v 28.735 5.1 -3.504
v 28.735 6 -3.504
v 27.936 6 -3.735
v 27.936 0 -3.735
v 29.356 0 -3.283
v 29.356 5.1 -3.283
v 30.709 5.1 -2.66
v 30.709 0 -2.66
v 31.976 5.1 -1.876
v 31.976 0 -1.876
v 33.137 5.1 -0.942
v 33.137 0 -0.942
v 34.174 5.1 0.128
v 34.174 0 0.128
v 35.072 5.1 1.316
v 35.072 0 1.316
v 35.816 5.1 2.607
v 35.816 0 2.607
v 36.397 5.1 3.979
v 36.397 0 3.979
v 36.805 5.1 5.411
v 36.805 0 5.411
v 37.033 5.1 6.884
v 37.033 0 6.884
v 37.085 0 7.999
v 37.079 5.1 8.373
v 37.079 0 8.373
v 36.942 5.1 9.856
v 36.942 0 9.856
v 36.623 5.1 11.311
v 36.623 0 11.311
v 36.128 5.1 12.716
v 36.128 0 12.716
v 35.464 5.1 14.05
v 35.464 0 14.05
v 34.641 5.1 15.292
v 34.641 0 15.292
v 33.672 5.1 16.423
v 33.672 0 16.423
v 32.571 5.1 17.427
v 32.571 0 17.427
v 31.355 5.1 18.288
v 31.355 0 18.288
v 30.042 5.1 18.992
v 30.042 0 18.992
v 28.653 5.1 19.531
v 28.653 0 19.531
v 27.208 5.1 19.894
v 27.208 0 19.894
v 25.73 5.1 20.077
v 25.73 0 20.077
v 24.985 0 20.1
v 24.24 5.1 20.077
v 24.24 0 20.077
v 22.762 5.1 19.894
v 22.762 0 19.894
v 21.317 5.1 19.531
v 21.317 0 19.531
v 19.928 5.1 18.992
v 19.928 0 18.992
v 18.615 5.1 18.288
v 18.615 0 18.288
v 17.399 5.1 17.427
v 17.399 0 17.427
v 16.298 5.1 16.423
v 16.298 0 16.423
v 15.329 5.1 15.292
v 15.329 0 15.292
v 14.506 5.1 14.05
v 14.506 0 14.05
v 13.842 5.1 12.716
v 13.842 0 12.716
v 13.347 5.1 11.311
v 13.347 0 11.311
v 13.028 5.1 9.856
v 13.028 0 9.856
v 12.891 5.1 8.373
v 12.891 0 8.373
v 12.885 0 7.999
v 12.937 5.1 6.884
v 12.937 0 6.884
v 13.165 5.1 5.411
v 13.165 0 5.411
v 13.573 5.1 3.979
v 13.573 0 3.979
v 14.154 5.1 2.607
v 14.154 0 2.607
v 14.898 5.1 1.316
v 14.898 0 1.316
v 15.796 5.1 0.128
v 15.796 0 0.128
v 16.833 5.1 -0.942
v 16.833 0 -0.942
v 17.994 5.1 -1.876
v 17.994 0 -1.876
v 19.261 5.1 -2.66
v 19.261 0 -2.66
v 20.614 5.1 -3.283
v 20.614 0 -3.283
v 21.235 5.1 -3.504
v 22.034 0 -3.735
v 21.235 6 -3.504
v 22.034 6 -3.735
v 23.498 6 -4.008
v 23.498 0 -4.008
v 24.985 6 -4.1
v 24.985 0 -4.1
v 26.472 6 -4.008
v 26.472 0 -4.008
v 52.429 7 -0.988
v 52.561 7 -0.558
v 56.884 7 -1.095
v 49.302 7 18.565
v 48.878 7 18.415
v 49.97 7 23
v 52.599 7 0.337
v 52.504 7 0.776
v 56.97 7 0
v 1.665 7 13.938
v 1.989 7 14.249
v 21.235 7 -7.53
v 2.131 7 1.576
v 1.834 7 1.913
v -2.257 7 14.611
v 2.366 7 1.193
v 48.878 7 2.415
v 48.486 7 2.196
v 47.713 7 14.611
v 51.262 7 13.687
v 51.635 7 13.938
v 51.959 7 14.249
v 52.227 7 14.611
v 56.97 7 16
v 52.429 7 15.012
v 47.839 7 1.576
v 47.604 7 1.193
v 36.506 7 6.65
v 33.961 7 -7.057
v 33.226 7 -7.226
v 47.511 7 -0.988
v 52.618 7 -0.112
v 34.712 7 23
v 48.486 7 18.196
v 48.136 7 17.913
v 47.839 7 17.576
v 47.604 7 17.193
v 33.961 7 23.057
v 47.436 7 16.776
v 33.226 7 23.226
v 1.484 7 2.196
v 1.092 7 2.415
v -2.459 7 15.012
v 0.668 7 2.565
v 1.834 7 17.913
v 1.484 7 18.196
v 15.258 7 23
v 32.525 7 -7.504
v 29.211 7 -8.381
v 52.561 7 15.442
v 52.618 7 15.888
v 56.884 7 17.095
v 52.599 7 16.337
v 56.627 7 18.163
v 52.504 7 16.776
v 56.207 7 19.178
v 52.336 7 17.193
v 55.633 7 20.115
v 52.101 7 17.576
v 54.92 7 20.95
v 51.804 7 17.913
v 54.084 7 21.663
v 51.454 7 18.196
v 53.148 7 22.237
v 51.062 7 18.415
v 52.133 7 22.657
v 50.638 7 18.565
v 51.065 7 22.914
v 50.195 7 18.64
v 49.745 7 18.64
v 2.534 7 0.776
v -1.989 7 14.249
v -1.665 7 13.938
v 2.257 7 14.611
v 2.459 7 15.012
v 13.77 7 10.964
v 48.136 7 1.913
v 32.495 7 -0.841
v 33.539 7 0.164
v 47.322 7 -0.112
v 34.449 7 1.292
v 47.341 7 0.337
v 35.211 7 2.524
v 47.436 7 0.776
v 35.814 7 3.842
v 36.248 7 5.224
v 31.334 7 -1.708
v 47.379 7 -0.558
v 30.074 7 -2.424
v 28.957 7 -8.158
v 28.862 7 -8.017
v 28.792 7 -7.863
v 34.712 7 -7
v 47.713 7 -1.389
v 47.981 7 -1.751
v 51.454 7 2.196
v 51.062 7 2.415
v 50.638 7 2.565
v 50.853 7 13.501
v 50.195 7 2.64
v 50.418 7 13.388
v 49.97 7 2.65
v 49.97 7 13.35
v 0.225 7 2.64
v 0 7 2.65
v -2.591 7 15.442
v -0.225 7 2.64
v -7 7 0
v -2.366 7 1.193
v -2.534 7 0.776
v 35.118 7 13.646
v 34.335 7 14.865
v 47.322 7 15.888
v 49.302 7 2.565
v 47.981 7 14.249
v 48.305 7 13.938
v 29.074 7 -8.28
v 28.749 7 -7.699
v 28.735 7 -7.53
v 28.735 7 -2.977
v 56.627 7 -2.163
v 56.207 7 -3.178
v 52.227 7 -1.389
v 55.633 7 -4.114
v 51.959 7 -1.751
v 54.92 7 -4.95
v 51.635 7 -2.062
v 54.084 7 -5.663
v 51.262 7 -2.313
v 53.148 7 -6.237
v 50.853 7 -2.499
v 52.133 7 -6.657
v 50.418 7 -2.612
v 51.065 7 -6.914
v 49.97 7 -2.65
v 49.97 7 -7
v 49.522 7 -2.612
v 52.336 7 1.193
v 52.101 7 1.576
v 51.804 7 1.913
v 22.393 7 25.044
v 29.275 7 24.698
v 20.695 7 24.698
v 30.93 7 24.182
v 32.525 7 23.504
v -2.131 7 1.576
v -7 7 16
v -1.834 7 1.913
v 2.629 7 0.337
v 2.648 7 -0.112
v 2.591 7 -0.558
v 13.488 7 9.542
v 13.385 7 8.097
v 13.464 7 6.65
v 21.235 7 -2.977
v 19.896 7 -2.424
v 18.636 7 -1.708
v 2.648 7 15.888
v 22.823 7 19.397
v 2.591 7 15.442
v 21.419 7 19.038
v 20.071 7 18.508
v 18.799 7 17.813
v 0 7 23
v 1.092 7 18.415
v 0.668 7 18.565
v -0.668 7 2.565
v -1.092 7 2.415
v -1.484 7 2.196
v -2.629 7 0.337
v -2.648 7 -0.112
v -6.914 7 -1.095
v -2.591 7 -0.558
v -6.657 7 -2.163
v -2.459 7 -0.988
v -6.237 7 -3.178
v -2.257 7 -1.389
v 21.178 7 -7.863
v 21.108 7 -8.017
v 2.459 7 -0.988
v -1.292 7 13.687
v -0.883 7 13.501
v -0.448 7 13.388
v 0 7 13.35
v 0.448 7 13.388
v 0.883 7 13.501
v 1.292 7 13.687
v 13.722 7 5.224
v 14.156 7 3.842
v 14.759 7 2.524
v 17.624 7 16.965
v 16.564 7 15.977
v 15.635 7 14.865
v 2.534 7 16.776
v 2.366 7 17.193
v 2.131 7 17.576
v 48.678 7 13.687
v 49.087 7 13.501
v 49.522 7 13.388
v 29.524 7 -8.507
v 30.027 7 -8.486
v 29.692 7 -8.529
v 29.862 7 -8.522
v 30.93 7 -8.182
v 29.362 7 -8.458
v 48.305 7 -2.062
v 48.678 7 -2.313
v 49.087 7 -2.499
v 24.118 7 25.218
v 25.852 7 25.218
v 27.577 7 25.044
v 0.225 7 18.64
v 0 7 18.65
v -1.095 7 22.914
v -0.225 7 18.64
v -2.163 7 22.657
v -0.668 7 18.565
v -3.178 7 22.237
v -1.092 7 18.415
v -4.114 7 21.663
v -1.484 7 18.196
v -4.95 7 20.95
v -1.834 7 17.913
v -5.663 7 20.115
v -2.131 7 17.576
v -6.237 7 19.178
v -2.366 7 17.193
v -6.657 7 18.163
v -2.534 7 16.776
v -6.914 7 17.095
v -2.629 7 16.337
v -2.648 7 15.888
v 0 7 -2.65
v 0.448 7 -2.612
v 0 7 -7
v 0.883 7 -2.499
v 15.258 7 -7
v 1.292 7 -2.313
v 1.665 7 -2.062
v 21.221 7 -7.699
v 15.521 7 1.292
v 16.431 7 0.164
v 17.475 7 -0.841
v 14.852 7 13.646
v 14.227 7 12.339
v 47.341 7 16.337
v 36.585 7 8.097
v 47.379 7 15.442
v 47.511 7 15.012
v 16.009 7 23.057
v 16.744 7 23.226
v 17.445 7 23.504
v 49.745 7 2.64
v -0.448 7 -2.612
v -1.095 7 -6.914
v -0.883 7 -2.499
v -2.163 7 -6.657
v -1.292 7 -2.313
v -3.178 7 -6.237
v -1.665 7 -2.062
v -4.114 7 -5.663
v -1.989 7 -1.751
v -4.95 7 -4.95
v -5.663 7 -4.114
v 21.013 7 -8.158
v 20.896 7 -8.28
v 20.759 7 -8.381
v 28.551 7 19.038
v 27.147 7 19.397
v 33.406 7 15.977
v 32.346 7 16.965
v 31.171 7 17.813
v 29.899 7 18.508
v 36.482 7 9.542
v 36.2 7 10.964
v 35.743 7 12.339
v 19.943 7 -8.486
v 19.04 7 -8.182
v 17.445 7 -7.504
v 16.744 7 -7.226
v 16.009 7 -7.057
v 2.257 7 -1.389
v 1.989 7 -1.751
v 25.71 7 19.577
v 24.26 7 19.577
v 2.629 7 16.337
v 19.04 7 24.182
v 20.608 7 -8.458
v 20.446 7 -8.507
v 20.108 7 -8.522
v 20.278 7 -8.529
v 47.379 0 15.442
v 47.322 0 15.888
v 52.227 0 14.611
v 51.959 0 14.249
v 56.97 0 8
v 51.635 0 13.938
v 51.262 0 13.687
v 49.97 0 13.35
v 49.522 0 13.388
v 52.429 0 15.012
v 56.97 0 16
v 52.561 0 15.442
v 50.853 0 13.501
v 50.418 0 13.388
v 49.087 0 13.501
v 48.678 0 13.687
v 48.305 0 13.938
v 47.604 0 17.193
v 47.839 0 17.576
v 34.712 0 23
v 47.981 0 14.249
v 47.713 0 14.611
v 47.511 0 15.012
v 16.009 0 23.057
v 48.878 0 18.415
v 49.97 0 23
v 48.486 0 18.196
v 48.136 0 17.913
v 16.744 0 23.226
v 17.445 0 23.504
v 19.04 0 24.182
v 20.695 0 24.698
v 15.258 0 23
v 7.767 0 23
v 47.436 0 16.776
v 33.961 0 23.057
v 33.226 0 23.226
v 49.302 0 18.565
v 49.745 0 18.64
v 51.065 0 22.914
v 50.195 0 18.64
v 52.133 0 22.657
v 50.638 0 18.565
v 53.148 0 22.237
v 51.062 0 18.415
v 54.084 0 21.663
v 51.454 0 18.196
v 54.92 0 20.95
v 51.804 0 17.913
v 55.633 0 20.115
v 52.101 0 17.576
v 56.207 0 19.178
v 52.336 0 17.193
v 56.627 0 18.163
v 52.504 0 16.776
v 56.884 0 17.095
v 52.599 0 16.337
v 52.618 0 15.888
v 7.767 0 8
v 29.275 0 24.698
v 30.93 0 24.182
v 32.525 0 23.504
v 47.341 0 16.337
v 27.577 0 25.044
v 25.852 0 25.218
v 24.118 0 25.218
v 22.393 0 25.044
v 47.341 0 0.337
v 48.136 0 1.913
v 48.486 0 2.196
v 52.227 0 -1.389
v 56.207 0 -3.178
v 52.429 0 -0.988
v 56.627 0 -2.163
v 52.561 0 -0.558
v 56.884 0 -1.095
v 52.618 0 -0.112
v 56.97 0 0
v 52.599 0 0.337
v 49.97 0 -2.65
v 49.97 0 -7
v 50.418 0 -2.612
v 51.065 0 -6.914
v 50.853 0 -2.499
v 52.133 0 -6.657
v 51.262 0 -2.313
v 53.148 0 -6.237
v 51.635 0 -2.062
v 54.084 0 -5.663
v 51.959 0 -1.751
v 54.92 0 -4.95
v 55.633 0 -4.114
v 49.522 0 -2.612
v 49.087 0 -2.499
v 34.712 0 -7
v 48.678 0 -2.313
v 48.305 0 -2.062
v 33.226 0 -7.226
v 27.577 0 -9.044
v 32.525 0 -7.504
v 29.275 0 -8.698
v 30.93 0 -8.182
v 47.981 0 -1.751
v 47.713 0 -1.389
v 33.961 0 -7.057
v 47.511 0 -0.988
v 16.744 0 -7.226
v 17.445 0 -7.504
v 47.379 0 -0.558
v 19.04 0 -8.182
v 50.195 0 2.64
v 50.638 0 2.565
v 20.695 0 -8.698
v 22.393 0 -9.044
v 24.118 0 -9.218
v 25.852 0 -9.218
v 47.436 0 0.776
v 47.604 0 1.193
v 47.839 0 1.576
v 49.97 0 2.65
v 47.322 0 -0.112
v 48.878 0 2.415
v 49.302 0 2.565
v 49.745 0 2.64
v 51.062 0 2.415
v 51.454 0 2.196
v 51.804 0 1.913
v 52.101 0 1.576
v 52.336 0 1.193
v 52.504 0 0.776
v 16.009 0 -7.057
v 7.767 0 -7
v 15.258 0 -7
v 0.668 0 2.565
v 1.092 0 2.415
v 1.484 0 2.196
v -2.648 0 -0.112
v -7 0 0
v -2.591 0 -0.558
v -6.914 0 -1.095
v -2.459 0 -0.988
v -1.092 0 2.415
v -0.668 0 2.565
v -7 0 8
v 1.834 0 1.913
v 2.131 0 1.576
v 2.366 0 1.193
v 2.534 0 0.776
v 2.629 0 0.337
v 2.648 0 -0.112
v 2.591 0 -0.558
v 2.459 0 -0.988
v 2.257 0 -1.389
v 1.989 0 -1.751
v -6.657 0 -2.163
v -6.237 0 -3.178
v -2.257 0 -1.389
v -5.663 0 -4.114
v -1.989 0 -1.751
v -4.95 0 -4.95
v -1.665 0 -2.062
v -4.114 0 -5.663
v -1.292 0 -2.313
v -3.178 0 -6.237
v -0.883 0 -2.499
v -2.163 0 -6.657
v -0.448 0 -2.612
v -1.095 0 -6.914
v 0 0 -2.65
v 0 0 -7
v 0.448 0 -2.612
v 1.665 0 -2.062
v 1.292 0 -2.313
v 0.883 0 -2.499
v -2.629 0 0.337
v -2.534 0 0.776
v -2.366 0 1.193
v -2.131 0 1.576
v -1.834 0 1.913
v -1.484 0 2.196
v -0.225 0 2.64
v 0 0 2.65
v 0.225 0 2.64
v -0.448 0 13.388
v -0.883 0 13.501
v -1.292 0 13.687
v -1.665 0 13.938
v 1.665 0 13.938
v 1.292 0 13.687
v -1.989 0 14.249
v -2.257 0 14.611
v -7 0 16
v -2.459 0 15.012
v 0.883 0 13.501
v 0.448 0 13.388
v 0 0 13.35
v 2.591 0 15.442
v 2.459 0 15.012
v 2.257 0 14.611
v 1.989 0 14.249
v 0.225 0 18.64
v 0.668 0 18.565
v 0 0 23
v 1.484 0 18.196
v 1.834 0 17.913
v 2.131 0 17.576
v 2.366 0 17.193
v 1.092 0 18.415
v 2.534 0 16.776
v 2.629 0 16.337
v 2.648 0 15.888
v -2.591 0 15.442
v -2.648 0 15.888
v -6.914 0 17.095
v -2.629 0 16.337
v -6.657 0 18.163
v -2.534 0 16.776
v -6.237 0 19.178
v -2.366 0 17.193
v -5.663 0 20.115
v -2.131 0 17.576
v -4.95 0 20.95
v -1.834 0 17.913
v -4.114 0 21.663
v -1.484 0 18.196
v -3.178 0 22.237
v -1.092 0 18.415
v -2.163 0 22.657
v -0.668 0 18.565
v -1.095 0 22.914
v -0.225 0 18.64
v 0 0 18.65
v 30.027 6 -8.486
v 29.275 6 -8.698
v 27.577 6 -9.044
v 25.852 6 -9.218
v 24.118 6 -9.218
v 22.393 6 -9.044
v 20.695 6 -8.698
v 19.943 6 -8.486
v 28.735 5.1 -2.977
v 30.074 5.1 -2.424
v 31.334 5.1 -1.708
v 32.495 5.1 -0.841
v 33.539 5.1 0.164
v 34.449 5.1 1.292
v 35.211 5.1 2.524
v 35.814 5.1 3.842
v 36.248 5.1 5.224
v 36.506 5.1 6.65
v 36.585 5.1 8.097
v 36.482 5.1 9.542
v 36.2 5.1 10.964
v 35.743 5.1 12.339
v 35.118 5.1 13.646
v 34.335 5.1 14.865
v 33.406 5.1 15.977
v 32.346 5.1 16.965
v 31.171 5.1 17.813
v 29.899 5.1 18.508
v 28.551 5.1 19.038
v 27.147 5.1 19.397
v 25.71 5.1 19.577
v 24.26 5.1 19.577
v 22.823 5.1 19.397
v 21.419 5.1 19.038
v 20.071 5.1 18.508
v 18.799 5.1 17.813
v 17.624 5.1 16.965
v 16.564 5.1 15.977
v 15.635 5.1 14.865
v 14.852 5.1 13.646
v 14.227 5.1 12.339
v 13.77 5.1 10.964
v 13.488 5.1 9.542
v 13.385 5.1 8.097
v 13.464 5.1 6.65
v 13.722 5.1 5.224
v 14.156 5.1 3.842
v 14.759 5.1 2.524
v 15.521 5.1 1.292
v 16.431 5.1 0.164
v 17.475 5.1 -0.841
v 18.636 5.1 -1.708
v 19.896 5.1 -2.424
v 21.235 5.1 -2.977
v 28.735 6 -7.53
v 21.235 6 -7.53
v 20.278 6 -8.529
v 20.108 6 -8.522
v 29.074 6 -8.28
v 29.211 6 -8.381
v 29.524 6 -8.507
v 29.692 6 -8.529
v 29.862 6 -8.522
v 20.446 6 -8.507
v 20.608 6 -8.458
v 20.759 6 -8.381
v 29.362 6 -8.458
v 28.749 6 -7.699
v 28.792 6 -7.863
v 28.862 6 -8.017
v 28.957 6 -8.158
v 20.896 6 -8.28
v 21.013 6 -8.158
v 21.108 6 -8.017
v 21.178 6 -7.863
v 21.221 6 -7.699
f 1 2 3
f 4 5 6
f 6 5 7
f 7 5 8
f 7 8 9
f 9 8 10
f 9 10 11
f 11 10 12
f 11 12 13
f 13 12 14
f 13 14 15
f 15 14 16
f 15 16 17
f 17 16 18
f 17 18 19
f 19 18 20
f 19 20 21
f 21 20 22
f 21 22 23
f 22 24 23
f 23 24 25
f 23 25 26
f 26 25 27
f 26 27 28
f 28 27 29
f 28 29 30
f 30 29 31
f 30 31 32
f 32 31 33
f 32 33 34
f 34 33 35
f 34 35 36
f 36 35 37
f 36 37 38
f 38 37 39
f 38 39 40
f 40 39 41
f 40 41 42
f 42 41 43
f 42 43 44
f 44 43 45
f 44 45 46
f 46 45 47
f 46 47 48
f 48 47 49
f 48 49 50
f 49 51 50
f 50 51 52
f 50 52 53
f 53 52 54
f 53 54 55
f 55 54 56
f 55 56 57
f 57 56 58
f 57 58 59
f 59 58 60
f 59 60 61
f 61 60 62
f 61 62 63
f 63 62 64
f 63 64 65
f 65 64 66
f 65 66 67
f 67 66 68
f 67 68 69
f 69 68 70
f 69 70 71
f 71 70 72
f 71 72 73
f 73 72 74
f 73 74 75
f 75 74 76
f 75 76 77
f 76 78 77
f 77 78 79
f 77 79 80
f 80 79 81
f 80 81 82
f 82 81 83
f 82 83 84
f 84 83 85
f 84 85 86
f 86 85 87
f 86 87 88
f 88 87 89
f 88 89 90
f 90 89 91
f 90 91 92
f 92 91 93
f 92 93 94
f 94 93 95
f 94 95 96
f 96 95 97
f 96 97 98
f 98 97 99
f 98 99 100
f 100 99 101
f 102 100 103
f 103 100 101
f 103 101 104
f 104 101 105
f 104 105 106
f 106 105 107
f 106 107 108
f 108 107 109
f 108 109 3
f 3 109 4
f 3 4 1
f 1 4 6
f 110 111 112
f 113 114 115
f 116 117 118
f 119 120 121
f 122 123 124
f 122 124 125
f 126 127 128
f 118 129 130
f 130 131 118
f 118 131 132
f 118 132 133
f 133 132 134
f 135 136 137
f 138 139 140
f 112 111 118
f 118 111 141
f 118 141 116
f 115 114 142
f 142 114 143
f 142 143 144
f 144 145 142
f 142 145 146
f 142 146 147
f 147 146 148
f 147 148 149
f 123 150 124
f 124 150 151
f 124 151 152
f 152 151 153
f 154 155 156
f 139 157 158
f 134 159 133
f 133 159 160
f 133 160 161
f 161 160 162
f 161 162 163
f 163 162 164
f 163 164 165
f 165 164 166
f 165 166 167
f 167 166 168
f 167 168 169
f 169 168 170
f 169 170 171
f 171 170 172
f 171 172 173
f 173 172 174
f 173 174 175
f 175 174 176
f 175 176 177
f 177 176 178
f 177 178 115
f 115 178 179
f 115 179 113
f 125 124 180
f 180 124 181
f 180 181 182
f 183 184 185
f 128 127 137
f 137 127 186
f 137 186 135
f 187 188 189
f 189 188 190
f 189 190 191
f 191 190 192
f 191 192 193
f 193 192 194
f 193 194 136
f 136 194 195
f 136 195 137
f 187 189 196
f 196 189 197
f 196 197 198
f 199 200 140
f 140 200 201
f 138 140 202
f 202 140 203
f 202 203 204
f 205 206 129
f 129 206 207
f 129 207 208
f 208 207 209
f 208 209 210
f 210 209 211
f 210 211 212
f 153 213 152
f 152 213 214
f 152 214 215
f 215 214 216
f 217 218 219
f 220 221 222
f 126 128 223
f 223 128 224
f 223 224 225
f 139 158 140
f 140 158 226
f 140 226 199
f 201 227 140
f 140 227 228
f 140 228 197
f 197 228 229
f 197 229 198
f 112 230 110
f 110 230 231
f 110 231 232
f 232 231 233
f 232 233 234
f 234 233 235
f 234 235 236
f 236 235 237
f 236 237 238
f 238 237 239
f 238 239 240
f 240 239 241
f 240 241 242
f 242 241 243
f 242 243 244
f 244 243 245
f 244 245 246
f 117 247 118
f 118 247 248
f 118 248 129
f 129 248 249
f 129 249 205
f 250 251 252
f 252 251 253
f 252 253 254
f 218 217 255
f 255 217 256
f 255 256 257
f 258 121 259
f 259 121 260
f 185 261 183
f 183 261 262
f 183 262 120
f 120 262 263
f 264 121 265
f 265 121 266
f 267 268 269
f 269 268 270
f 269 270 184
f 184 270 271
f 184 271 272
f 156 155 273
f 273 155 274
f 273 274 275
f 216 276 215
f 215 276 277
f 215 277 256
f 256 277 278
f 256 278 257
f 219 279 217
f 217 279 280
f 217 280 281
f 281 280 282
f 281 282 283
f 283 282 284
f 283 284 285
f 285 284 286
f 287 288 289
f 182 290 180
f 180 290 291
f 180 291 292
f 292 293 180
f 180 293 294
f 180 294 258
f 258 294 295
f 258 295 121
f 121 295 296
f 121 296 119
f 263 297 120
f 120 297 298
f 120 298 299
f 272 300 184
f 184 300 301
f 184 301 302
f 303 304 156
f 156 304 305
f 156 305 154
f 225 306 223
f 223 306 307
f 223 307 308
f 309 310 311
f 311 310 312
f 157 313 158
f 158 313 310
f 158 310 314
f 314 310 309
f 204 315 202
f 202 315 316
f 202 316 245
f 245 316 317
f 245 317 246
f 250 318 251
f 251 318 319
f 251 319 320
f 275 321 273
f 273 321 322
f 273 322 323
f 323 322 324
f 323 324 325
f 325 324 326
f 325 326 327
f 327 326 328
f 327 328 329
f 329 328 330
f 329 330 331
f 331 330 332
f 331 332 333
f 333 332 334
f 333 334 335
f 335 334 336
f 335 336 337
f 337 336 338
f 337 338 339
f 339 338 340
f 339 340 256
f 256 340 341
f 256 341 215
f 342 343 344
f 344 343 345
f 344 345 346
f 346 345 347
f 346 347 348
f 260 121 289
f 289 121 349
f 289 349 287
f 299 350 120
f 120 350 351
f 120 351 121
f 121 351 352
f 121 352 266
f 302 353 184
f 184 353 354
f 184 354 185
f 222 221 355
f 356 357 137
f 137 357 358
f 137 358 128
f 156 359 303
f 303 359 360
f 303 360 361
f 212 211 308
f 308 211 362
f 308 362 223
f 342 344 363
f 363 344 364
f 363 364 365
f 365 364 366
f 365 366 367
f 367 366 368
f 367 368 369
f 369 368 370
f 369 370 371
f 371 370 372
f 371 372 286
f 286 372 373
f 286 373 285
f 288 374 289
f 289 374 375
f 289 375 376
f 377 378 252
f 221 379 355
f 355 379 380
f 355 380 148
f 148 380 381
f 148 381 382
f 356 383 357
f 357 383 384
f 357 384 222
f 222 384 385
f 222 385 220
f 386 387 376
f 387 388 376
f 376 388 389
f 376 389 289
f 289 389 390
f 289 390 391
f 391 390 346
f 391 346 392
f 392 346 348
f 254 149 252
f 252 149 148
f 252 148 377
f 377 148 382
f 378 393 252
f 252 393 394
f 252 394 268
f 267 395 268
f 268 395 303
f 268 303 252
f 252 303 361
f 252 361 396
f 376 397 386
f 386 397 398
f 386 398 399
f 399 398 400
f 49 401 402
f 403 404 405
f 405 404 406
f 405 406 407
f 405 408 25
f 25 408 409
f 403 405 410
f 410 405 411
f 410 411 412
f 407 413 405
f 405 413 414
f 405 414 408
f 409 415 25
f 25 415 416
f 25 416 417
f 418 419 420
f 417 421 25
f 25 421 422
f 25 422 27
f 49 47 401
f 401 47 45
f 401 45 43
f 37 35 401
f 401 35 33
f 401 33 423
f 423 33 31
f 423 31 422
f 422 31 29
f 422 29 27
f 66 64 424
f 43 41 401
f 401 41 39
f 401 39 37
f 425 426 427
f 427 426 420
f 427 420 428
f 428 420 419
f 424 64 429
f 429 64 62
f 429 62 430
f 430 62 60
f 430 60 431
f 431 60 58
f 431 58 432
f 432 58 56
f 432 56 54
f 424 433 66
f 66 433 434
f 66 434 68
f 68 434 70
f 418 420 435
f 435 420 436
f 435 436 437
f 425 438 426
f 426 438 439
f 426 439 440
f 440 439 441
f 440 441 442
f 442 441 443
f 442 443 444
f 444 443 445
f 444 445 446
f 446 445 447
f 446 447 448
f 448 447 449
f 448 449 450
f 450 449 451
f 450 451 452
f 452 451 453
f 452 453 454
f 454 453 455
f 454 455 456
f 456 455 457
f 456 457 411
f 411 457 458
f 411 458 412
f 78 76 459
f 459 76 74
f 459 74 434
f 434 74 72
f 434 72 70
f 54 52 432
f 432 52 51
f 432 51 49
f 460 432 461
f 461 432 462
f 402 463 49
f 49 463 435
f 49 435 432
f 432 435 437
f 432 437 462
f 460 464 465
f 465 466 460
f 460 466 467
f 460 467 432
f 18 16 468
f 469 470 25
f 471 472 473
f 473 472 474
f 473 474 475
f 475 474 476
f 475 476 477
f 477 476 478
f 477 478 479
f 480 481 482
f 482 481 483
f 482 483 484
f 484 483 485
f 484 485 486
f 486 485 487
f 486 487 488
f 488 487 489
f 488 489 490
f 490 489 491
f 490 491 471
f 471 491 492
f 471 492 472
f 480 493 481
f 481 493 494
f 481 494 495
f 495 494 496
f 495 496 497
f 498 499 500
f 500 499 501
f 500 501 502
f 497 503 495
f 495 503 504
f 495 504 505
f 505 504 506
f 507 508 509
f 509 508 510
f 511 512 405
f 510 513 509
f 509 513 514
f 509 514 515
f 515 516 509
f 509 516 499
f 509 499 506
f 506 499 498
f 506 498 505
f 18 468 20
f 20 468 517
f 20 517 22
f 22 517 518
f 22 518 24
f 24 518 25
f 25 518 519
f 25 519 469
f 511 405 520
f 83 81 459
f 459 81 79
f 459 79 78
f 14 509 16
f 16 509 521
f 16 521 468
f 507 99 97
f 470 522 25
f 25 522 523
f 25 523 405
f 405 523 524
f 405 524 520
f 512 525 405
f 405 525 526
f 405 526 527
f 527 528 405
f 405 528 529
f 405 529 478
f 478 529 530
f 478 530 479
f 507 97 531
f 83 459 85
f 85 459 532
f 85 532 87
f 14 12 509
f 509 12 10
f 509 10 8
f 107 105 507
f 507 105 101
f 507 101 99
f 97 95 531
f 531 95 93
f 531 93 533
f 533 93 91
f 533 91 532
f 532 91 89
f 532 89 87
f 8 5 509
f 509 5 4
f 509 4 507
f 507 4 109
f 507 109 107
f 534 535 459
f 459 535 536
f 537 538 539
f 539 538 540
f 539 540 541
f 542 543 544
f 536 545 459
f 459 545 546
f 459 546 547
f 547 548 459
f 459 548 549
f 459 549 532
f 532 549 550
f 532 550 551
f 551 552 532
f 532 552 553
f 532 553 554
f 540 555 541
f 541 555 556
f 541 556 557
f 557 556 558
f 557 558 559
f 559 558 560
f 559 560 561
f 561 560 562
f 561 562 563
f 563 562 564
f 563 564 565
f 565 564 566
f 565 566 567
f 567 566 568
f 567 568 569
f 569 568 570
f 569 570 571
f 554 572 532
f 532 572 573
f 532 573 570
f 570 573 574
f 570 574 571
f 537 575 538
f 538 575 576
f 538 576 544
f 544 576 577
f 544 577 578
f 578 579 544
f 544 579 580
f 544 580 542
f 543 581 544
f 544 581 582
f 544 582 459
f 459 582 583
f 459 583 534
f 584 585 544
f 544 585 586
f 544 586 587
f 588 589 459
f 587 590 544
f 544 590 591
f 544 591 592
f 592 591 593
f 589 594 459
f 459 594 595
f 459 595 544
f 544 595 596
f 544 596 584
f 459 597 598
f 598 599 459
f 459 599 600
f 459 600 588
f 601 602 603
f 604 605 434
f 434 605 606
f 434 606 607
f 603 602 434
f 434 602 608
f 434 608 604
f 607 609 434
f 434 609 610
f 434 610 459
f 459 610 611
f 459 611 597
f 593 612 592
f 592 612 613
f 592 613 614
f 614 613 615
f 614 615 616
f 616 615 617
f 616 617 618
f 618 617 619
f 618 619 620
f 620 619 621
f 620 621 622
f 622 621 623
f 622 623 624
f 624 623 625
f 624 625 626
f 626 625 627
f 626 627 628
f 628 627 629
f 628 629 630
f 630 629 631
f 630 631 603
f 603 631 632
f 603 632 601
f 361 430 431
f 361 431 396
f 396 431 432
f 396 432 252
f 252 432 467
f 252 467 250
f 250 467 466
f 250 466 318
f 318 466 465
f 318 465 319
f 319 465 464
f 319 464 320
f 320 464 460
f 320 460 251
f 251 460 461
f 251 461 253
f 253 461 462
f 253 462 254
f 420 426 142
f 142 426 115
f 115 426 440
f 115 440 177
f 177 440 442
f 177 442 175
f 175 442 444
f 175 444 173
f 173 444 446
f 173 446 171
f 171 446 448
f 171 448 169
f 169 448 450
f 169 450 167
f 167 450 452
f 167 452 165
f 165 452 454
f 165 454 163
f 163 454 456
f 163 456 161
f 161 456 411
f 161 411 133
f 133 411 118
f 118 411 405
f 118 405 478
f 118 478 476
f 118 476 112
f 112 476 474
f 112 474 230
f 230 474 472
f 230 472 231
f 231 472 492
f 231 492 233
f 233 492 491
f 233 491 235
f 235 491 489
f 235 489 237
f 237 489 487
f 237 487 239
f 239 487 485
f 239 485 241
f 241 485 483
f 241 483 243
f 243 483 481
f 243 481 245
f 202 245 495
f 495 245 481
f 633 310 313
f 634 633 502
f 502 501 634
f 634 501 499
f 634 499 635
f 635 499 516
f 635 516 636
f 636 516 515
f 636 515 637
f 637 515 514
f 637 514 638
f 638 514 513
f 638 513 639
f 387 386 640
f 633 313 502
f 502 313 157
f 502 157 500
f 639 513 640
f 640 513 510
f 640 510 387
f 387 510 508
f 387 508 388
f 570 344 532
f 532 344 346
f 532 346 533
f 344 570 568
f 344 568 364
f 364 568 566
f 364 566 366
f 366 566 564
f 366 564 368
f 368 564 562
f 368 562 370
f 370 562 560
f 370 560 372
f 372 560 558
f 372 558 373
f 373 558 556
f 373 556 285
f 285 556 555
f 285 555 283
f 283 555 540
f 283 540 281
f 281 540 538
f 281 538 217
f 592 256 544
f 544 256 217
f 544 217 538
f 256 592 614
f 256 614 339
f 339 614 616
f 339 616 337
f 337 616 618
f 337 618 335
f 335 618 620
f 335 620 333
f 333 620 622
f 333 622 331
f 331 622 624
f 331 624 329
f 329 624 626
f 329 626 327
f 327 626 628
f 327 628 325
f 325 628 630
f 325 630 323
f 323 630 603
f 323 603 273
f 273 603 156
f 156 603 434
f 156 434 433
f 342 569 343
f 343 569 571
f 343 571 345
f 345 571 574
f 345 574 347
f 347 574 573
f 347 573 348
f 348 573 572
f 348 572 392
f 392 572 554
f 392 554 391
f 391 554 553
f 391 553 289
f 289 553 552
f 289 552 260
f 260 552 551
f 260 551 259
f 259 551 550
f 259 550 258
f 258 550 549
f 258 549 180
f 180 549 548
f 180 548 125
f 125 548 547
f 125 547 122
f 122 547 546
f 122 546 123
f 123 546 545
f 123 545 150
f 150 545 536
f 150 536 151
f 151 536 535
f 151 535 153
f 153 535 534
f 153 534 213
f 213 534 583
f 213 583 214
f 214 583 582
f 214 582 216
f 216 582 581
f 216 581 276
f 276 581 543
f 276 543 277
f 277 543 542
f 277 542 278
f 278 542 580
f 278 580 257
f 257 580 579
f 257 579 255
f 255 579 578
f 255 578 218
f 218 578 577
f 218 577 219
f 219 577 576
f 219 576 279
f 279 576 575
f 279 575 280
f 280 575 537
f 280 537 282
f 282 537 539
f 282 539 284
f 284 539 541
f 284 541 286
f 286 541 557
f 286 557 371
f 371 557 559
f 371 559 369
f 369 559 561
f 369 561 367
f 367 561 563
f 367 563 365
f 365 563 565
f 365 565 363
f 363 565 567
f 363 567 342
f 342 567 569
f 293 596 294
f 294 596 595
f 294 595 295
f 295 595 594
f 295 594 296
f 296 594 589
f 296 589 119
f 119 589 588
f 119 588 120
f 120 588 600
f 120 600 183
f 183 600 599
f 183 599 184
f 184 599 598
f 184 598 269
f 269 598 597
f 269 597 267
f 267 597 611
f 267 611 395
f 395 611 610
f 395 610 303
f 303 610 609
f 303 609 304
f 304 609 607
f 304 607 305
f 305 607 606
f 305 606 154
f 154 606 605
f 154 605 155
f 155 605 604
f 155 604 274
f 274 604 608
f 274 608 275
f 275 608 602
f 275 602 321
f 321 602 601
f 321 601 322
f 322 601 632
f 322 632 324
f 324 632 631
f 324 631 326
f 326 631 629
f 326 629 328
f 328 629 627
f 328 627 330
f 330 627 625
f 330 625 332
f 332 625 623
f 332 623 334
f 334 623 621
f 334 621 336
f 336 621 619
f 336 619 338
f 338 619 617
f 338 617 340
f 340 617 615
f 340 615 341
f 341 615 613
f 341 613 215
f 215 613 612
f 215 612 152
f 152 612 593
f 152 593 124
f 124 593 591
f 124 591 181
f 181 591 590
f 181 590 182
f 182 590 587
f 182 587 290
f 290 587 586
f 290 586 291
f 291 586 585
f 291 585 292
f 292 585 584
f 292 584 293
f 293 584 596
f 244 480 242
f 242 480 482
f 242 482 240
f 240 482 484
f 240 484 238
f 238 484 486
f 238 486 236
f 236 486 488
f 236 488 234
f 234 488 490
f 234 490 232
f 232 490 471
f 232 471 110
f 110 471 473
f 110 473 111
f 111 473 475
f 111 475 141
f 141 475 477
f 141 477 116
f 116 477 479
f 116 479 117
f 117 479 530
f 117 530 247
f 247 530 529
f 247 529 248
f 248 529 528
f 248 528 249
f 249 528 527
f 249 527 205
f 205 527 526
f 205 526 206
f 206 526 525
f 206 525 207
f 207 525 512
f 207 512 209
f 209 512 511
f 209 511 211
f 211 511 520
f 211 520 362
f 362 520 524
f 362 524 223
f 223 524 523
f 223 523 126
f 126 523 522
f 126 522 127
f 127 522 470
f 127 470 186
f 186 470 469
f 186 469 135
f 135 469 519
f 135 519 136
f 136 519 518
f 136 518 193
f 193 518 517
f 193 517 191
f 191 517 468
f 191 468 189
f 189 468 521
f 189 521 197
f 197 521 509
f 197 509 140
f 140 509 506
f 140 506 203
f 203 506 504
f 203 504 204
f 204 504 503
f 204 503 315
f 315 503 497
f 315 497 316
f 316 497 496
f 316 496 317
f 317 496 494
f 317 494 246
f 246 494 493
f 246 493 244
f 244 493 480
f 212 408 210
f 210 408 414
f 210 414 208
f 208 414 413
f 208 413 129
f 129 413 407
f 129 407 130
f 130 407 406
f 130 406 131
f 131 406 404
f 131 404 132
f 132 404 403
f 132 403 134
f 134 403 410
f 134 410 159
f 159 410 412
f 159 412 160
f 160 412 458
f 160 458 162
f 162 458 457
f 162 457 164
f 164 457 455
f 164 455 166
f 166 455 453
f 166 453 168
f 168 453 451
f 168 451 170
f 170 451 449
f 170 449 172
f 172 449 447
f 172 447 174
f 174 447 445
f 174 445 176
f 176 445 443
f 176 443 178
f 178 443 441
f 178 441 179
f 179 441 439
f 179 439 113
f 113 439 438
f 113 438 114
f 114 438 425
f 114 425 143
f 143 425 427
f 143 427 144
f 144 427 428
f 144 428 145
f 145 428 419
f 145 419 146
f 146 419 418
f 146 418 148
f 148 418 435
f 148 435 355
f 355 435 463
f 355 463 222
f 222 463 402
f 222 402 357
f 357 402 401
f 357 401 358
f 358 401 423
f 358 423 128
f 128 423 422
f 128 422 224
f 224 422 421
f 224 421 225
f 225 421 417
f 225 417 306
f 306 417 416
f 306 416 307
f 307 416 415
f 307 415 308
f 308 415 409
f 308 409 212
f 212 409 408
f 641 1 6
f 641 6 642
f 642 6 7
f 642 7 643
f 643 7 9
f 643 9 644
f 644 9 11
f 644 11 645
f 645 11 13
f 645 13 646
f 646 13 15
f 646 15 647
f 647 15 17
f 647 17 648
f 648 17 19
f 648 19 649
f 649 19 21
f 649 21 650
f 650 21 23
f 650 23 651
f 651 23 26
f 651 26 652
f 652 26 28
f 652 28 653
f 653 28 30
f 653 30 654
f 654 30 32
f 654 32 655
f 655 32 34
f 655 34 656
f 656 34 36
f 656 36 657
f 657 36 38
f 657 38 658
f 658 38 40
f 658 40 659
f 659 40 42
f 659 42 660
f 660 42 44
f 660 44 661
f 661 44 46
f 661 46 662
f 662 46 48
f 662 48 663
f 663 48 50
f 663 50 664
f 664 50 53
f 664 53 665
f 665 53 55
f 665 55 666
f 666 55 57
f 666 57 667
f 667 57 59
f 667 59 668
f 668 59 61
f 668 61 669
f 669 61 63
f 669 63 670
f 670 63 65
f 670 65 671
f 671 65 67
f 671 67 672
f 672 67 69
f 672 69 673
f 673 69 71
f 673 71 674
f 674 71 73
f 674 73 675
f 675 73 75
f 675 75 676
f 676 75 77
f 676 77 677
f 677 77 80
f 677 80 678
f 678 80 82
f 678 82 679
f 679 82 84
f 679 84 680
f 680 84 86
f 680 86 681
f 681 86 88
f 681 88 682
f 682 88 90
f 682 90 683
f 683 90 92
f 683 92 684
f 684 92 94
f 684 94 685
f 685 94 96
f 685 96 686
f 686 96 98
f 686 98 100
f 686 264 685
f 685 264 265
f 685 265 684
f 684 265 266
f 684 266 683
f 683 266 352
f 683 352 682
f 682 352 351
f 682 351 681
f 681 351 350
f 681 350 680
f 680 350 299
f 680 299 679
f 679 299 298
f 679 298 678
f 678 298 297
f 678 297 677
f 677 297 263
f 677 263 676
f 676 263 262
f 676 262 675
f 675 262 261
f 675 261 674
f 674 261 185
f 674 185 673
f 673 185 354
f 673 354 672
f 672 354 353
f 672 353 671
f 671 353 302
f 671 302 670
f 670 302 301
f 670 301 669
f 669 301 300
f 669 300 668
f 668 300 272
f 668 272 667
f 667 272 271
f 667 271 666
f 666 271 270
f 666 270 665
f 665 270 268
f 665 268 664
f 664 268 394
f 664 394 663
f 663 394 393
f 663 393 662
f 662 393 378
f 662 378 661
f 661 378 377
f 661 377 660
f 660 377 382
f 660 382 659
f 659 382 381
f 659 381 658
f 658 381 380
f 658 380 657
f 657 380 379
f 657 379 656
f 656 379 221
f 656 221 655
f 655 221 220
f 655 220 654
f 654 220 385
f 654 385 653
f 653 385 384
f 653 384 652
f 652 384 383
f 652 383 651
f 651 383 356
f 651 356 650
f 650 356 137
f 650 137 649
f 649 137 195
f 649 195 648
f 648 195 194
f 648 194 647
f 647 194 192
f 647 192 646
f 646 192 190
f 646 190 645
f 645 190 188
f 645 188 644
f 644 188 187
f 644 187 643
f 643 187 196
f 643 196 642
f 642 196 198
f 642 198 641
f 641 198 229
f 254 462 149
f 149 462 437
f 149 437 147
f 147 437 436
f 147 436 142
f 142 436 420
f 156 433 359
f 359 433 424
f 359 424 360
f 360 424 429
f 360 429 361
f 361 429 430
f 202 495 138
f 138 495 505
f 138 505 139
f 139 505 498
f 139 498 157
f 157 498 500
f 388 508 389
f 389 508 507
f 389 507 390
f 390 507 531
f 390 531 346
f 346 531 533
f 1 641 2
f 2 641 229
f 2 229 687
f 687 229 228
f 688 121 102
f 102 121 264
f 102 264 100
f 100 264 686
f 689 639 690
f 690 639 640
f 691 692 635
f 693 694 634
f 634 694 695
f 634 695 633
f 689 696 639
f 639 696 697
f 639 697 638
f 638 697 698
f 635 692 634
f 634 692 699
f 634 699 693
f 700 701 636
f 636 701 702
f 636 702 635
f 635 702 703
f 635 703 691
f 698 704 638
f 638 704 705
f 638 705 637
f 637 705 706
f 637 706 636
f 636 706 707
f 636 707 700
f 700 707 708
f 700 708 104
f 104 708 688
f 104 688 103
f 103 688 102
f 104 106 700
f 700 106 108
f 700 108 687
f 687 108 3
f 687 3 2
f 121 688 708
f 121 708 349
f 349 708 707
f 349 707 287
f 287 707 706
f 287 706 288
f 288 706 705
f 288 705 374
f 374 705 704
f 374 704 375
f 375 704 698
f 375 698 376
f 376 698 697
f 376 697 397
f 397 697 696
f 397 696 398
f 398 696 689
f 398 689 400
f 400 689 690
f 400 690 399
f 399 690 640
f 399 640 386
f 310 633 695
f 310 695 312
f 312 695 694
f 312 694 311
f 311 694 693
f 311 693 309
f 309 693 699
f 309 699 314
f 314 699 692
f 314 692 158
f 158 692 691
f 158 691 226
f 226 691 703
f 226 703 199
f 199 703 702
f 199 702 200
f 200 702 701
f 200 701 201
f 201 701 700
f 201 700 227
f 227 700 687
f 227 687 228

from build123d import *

# Parameters (mm, degrees)
SKETCH_2_R          = 2.65
SKETCH_2_R_2        = 12.1
EXTRUDE_1_DEPTH     = 7
SKETCH_3_R          = 12.1
SKETCH_3_R_2        = 11.6
EXTRUDE_2_DEPTH     = 1.9
FILLET_1_R          = 5
CUT_EXTRUDE_2_DEPTH = 1
CUT_EXTRUDE_3_DEPTH = 7
FILLET_3_R          = 1


with BuildPart() as part:
    # 草图2 → 凸台-拉伸1 (new body)
    with BuildSketch(Plane(origin=(0, 0, 0), x_dir=(1, 0, 0), z_dir=(0, 1, 0))):
        with BuildLine():
            Line((33.483093904, -23), (49.97, -23))
            ThreePointArc((49.97, -23), (54.919747468, -20.949747468), (56.97, -16))
            Line((56.97, -16), (56.97, 0))
            ThreePointArc((56.97, 0), (54.919747468, 4.949747468), (49.97, 7))
            Line((49.97, 7), (33.483093904, 7))
            ThreePointArc((33.483093904, 7), (24.985, 9.24), (16.486906096, 7))
            Line((16.486906096, 7), (0, 7))
            ThreePointArc((0, 7), (-4.949747468, 4.949747468), (-7, 0))
            Line((-7, 0), (-7, -16))
            ThreePointArc((-7, -16), (-4.949747468, -20.949747468), (0, -23))
            Line((0, -23), (16.486906096, -23))
            ThreePointArc((16.486906096, -23), (24.985, -25.24), (33.483093904, -23))
        make_face()
        Circle(SKETCH_2_R, mode=Mode.SUBTRACT)
        with Locations((0, -16)):
            Circle(SKETCH_2_R, mode=Mode.SUBTRACT)
        with Locations((49.97, 0)):
            Circle(SKETCH_2_R, mode=Mode.SUBTRACT)
        with Locations((49.97, -16)):
            Circle(SKETCH_2_R, mode=Mode.SUBTRACT)
        with Locations((24.985, -8)):
            Circle(SKETCH_2_R_2, mode=Mode.SUBTRACT)
    extrude(amount=EXTRUDE_1_DEPTH)

    # 草图3 → 凸台-拉伸2 (add)
    with BuildSketch(Plane(origin=(0, 7, 0), x_dir=(1, 0, 0), z_dir=(0, 1, 0))):
        with Locations((24.985, -8)):
            Circle(SKETCH_3_R)
        with Locations((24.985, -8)):
            Circle(SKETCH_3_R_2, mode=Mode.SUBTRACT)
    extrude(amount=-EXTRUDE_2_DEPTH)

    # 圆角1
    fillet_1_edges = [part.edges().sort_by_distance(p)[0] for p in [
        (16.486906096, 3.5, 23),
        (16.486906096, 3.5, -7),
        (33.483093904, 3.5, -7),
        (33.483093904, 3.5, 23),
    ]]
    fillet(fillet_1_edges, radius=FILLET_1_R)

    # 草图5 → 切除-拉伸2 (cut)
    with BuildSketch(Plane(origin=(0, 7, 0), x_dir=(1, 0, 0), z_dir=(0, 1, 0))):
        with BuildLine():
            Line((21.235, 8.827213079), (21.235, 2.977135328))
            ThreePointArc((21.235, 2.977135328), (24.985, 3.6), (28.735, 2.977135328))
            Line((28.735, 2.977135328), (28.735, 8.827213079))
            ThreePointArc((28.735, 8.827213079), (24.985, 9.24), (21.235, 8.827213079))
        make_face()
    extrude(amount=-CUT_EXTRUDE_2_DEPTH, mode=Mode.SUBTRACT)

    # 草图6 → 切除-拉伸3 (cut, through all)
    with BuildSketch(Plane(origin=(0, 6, 0), x_dir=(1, 0, 0), z_dir=(0, 1, 0))):
        with BuildLine():
            Line((28.735, 2.977135328), (28.735, 3.504238349))
            ThreePointArc((28.735, 3.504238349), (24.985, 4.1), (21.235, 3.504238349))
            Line((21.235, 3.504238349), (21.235, 2.977135328))
            ThreePointArc((21.235, 2.977135328), (24.985, 3.6), (28.735, 2.977135328))
        make_face()
    extrude(amount=-CUT_EXTRUDE_3_DEPTH, mode=Mode.SUBTRACT)

    # 圆角3
    fillet_3_edges = [part.edges().sort_by_distance(p)[0] for p in [
        (21.235, 6.5, -8.827213079),
        (28.735, 6.5, -8.827213079),
    ]]
    fillet(fillet_3_edges, radius=FILLET_3_R)


solid = part.part
